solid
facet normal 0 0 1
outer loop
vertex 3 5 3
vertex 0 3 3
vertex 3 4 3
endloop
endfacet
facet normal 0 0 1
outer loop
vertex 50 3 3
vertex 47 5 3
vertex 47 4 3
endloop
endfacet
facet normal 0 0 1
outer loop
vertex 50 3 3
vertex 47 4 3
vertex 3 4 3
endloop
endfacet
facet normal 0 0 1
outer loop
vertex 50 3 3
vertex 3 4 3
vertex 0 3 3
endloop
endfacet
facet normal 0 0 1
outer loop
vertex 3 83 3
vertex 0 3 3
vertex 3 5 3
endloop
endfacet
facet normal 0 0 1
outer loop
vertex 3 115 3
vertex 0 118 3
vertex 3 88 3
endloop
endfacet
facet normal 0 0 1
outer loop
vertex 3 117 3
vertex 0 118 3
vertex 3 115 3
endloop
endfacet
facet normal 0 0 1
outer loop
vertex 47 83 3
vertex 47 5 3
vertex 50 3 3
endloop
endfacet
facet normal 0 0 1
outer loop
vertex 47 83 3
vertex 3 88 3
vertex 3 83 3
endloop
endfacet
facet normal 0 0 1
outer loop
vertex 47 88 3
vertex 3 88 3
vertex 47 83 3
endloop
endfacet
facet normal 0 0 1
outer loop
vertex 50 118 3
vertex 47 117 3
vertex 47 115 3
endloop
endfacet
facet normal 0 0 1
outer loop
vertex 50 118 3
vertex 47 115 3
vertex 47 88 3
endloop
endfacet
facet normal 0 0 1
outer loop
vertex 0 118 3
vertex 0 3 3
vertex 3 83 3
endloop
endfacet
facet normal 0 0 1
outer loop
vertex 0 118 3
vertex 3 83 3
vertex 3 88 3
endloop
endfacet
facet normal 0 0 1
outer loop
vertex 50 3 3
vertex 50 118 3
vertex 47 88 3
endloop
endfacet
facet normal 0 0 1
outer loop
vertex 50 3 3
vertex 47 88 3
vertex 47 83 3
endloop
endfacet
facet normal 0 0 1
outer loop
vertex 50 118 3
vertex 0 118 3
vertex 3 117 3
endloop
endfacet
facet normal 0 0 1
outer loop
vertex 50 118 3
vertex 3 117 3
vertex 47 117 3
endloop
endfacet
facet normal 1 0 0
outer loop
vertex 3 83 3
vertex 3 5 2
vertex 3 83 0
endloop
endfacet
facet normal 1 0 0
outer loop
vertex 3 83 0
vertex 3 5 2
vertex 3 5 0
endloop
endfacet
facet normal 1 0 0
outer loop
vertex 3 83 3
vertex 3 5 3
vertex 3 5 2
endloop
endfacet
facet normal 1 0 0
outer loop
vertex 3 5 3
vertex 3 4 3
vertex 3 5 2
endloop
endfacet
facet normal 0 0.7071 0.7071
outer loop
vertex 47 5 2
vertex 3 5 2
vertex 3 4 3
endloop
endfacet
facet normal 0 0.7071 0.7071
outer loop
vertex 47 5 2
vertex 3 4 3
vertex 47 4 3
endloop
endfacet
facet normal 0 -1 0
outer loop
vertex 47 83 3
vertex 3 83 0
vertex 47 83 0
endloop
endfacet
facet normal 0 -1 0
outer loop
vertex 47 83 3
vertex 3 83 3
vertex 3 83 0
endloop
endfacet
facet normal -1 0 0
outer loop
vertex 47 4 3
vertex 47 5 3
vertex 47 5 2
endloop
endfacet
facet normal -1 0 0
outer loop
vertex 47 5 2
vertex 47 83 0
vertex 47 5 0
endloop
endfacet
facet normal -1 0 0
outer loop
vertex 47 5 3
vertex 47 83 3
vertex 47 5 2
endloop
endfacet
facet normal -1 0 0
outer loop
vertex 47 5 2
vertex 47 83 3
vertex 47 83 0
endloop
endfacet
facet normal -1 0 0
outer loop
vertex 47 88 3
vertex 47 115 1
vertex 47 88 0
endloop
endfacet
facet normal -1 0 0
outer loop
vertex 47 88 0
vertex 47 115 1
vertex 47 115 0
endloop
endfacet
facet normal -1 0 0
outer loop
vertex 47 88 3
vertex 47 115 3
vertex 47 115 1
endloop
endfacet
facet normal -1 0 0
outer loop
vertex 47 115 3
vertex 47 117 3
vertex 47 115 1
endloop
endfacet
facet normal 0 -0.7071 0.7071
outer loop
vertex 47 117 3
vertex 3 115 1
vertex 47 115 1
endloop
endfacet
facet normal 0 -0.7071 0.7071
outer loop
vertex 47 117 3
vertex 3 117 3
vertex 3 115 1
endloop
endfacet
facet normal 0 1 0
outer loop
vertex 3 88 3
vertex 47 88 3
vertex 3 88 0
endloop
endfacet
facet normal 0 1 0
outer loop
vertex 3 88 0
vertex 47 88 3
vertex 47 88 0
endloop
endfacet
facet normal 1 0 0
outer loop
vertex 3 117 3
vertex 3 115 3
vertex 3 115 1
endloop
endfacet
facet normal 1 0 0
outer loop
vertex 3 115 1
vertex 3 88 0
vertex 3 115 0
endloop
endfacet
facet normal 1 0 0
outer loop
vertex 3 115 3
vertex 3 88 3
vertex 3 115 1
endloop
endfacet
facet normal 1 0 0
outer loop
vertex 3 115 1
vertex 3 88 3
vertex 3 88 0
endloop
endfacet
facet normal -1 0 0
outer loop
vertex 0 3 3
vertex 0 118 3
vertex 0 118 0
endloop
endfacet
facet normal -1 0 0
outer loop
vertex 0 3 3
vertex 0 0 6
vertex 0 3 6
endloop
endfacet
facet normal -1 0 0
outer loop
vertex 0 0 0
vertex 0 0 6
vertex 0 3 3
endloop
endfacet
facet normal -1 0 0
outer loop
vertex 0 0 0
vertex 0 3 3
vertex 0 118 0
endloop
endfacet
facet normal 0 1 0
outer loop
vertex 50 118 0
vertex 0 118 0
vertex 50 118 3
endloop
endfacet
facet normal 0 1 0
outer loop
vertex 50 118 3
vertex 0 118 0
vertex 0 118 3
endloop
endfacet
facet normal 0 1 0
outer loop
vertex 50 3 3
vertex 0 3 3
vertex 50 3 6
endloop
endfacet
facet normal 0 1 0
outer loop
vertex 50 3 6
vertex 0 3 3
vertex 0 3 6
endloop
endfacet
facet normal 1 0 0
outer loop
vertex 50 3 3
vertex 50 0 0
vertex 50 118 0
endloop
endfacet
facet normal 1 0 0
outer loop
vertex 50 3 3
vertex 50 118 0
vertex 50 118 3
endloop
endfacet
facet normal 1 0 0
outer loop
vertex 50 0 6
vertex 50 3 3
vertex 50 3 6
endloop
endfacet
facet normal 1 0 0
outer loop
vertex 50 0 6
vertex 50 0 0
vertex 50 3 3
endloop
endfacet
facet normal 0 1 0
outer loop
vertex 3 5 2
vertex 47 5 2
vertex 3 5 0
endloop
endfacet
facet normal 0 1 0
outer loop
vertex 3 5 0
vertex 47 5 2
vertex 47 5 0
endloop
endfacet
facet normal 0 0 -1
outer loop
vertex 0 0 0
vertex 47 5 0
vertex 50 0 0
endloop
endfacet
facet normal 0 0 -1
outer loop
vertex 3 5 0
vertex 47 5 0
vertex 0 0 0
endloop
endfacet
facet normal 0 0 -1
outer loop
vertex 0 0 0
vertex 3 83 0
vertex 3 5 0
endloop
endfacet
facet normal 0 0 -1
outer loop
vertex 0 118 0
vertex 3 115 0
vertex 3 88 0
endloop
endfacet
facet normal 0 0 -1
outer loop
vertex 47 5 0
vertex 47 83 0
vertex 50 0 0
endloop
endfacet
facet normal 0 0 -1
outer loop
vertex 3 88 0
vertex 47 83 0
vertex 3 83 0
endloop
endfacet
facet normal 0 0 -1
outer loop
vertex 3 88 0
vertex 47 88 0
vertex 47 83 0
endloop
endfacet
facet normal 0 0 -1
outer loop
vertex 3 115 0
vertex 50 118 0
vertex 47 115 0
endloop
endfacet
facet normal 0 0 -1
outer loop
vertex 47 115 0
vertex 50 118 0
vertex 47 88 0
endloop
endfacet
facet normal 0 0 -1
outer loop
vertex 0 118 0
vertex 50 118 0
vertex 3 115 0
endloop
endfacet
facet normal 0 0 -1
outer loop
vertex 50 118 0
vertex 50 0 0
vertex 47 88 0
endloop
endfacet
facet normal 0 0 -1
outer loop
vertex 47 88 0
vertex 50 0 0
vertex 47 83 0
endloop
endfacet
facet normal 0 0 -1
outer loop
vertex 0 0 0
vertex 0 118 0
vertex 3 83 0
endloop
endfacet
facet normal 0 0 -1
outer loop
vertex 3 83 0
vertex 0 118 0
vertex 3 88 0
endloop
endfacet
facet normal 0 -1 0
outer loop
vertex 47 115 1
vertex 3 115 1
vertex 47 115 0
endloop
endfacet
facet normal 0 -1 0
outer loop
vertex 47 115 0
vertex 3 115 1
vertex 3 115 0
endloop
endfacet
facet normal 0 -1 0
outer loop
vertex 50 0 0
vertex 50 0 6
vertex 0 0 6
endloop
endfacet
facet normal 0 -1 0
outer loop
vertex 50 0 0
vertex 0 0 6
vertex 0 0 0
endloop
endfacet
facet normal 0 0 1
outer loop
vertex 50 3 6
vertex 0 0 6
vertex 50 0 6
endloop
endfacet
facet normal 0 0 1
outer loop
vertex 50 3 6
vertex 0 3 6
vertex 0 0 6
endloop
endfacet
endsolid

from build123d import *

# Parameters (mm, degrees)
SKETCH_W        = 50
SKETCH_H        = 118
PAD_DEPTH       = 3
SKETCH001_W     = 50
SKETCH001_H     = 3
PAD001_DEPTH    = 3
SKETCH002_W     = 44
SKETCH002_H     = 78
SKETCH002_H_2   = 27
POCKET_DEPTH    = 3
CHAMFER_SIZE    = 2
CHAMFER001_SIZE = 1


with BuildPart() as part:
    # Sketch → Pad (new body)
    with BuildSketch(Plane.XY):
        with Locations((25, 59)):
            Rectangle(SKETCH_W, SKETCH_H)
    extrude(amount=PAD_DEPTH)

    # Sketch001 (on Face6 of Pad) → Pad001 (join)
    with BuildSketch(Plane.XY.offset(3)):
        with Locations((25, 1.5)):
            Rectangle(SKETCH001_W, SKETCH001_H)
    extrude(amount=PAD001_DEPTH)

    # Sketch002 (on Face3 of Pad001) → Pocket (cut)
    with BuildSketch(Plane.XY.offset(3)):
        with Locations((25, 44)):
            Rectangle(SKETCH002_W, SKETCH002_H)
        with Locations((25, 101.5)):
            Rectangle(SKETCH002_W, SKETCH002_H_2)
    extrude(amount=-POCKET_DEPTH, mode=Mode.SUBTRACT)

    # Chamfer
    chamfer_edges = [part.edges().sort_by_distance(p)[0] for p in [
        (25, 115, 3),
    ]]
    chamfer(chamfer_edges, length=CHAMFER_SIZE)

    # Chamfer001
    chamfer001_edges = [part.edges().sort_by_distance(p)[0] for p in [
        (25, 5, 3),
    ]]
    chamfer(chamfer001_edges, length=CHAMFER001_SIZE)


solid = part.part
